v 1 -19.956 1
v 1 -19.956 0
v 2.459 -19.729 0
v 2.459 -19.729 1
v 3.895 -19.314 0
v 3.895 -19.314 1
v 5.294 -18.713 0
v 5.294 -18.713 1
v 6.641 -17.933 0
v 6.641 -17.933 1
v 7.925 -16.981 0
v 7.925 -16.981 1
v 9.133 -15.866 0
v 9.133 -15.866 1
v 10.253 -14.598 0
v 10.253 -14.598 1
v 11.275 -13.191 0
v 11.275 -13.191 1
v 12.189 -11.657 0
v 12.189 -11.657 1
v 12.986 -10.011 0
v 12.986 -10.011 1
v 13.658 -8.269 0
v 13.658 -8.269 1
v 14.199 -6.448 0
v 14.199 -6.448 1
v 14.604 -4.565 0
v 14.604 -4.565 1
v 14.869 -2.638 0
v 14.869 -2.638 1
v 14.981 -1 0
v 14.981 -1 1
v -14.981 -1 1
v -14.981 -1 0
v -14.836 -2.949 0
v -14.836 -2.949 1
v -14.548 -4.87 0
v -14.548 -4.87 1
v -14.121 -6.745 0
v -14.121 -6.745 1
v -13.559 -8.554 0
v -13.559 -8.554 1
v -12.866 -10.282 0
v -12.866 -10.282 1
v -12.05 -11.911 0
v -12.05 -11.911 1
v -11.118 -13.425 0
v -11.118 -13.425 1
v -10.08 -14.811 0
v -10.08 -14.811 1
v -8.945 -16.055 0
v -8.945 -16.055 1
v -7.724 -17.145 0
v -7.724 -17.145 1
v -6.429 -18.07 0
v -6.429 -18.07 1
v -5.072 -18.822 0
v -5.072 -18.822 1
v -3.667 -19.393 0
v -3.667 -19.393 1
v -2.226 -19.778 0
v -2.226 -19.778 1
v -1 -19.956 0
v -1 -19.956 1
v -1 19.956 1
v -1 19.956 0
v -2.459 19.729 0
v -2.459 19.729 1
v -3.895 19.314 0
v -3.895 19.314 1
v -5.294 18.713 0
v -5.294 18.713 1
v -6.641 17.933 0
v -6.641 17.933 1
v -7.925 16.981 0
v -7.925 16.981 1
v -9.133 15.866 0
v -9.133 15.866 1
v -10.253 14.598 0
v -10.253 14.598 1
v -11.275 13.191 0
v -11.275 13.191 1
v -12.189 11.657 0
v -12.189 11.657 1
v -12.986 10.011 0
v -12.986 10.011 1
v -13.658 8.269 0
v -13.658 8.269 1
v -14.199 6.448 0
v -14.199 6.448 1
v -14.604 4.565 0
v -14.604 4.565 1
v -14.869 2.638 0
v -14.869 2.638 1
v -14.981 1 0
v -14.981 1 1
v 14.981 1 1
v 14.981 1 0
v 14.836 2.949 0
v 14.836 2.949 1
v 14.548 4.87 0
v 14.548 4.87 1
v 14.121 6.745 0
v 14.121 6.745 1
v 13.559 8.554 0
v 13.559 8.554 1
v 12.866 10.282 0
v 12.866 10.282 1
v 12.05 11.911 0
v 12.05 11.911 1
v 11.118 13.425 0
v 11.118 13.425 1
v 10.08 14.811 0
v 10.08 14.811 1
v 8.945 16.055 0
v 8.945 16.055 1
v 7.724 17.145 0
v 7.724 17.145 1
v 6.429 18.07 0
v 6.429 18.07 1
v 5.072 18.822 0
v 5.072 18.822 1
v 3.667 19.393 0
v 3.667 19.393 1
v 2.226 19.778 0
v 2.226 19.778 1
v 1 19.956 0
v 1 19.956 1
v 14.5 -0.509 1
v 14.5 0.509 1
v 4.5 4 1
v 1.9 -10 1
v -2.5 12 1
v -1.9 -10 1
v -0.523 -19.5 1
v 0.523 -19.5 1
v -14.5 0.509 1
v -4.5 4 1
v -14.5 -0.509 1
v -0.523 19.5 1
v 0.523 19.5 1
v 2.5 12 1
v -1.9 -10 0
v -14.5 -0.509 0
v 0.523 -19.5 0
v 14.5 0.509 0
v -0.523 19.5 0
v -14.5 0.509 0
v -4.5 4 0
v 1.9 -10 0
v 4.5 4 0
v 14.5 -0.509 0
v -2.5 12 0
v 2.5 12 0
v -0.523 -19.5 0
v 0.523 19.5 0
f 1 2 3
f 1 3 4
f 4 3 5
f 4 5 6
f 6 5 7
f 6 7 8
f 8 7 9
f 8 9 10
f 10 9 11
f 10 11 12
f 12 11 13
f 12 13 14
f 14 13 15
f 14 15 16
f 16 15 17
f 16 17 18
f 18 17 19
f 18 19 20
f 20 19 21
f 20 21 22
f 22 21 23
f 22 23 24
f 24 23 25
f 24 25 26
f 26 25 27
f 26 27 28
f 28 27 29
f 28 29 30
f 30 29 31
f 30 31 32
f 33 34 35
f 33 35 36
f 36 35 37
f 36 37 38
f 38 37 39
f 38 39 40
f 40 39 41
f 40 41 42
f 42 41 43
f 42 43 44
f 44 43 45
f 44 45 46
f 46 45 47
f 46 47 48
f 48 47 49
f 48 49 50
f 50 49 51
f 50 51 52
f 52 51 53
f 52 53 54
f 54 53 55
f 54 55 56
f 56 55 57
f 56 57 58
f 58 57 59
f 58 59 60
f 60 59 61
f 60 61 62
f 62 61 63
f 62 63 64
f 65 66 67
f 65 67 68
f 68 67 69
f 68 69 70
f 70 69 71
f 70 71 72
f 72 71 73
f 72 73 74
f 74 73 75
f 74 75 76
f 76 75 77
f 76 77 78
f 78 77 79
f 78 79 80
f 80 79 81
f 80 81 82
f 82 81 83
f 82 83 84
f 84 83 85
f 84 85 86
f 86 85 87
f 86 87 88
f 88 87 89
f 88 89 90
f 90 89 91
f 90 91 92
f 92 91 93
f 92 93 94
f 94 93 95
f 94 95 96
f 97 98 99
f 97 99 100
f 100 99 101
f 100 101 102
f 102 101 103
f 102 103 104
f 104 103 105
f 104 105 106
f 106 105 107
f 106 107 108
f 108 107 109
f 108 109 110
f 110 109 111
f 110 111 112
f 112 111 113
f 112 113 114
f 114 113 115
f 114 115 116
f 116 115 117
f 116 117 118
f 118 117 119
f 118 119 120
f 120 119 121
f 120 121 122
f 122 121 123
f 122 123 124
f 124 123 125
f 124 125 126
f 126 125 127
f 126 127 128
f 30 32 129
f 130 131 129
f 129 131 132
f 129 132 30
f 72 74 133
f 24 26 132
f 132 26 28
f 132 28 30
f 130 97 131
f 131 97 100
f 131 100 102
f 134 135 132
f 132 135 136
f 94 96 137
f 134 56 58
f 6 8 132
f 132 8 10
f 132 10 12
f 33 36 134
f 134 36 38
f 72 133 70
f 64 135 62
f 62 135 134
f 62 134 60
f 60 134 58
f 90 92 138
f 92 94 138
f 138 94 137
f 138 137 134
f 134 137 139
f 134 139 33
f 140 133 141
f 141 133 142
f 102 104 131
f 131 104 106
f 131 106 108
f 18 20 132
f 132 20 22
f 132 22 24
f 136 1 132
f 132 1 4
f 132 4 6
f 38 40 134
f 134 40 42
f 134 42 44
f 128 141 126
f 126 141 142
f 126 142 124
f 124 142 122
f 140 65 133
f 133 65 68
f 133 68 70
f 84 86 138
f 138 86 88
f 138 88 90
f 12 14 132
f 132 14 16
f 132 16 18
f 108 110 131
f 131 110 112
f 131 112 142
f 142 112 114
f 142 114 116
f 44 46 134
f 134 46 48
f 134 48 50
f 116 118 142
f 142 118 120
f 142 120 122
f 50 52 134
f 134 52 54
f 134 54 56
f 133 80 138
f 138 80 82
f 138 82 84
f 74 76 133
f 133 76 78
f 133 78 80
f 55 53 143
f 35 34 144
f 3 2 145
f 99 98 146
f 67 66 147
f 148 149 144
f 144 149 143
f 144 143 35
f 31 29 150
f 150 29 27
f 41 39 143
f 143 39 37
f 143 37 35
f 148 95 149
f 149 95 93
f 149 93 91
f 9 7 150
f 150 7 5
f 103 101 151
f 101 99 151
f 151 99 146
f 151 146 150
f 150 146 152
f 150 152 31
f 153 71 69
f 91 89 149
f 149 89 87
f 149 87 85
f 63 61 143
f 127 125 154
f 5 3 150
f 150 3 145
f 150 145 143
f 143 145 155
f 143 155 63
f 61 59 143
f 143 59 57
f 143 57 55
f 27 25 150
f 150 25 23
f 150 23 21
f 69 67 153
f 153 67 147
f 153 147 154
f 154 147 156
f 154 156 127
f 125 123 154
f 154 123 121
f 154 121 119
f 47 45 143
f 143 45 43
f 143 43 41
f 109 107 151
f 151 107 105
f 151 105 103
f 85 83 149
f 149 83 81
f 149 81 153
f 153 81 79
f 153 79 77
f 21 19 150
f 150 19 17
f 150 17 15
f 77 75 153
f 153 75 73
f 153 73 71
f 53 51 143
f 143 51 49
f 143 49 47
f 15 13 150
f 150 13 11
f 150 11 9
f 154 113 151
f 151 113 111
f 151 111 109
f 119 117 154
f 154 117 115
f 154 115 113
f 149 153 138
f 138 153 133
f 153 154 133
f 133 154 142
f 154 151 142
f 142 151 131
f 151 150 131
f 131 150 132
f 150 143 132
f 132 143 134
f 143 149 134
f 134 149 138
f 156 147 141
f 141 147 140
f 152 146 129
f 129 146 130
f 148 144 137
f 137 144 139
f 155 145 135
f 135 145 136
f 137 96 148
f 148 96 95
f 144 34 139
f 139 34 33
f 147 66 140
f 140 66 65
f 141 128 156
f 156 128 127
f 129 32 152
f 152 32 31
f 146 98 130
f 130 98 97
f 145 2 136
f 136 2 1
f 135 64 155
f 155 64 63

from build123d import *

# Parameters (mm, degrees)
SKETCH_1_RX         = 20
SKETCH_1_RY         = 15
EXTRUDE_1_DEPTH     = 1
CUT_EXTRUDE_1_DEPTH = 1
SKETCH_3_W          = 1
SKETCH_3_H          = 1
CUT_EXTRUDE_2_DEPTH = 1
CHAMFER_START       = -1
CHAMFER_1_DEPTH     = 3


with BuildPart() as part:
    # 스케치1 → 보스-돌출1 (new body)
    with BuildSketch(Plane.XY):
        with Locations(Location((0, 0), (0, 0, -90))):
            Ellipse(SKETCH_1_RX, SKETCH_1_RY)
    extrude(amount=EXTRUDE_1_DEPTH)

    # 스케치2 → 컷-돌출1 (cut)
    with BuildSketch(Plane.XY.offset(1)):
        Polygon((2.5, 12), (-2.5, 12), (-4.5, 4), (-1.9, -10), (1.9, -10), (4.5, 4), align=None)
    extrude(amount=-CUT_EXTRUDE_1_DEPTH, mode=Mode.SUBTRACT)

    # 스케치3 → 컷-돌출2 (cut)
    with BuildSketch(Plane.XY.offset(1)):
        with Locations((0, 20)):
            Rectangle(SKETCH_3_W, SKETCH_3_H)
        with Locations((15, 0)):
            Rectangle(SKETCH_3_W, SKETCH_3_H)
        with Locations((-15, 0)):
            Rectangle(SKETCH_3_W, SKETCH_3_H)
        with Locations((0, -20)):
            Rectangle(SKETCH_3_W, SKETCH_3_H)
    extrude(amount=-CUT_EXTRUDE_2_DEPTH, mode=Mode.SUBTRACT)

    # 모따기1: read off the stored shape, not the designer's step
    # 모따기1 outline → 모따기1 (cut)
    with BuildSketch(Plane.XY.offset(CHAMFER_START)):
        with BuildLine():
            Line((-14.5, 0.509476942), (-14.981237977, 1.0000077))
            add(Edge.make_bspline(
                [(-14.981237977, 1.0000077), (-14.990620528, 0.750121225), (-14.995311767, 0.5)],
                knots=[4.659948749, 4.659948749, 4.659948749, 4.687386375, 4.687386375, 4.687386375], degree=2, weights=[0.990289953, 0.995055274, 1]))
            Line((-14.995311767, 0.5), (-14.5, 0.5))
            Line((-14.5, 0.5), (-14.5, 0.509476942))
        make_face()
        with BuildLine():
            add(Edge.make_bspline(
                [(-0.5, 19.988885801), (-0.750180122, 19.977760502), (-0.999942528, 19.955511183)],
                knots=[3.174932163, 3.174932163, 3.174932163, 3.211472839, 3.211472839, 3.211472839], degree=2, weights=[1, 0.99341475, 0.987147697]))
            Line((-0.999942528, 19.955511183), (-0.522817559, 19.5))
            Line((-0.522817559, 19.5), (-0.5, 19.5))
            Line((-0.5, 19.5), (-0.5, 19.988885801))
        make_face()
        with BuildLine():
            Line((-14.5, -0.509476942), (-14.5, -0.5))
            Line((-14.5, -0.5), (-14.995311767, -0.5))
            add(Edge.make_bspline(
                [(-14.995311767, -0.5), (-14.990620528, -0.750121225), (-14.981237977, -1.0000077)],
                knots=[4.737391585, 4.737391585, 4.737391585, 4.764829212, 4.764829212, 4.764829212], degree=2, weights=[1, 0.995055274, 0.990289953]))
            Line((-14.981237977, -1.0000077), (-14.5, -0.509476942))
        make_face()
        with BuildLine():
            Line((0.5, 19.988885801), (0.5, 19.5))
            Line((0.5, 19.5), (0.522817559, 19.5))
            Line((0.522817559, 19.5), (0.999942528, 19.955511183))
            add(Edge.make_bspline(
                [(0.999942528, 19.955511183), (0.750180122, 19.977760502), (0.5, 19.988885801)],
                knots=[3.071712468, 3.071712468, 3.071712468, 3.108253144, 3.108253144, 3.108253144], degree=2, weights=[0.987147697, 0.99341475, 1]))
        make_face()
        with BuildLine():
            Line((-0.522817559, -19.5), (-0.999942528, -19.955511183))
            add(Edge.make_bspline(
                [(-0.999942528, -19.955511183), (-0.750180122, -19.977760502), (-0.5, -19.988885801)],
                knots=[6.213305122, 6.213305122, 6.213305122, 6.249845798, 6.249845798, 6.249845798], degree=2, weights=[0.987147697, 0.99341475, 1]))
            Line((-0.5, -19.988885801), (-0.5, -19.5))
            Line((-0.5, -19.5), (-0.522817559, -19.5))
        make_face()
        with BuildLine():
            add(Edge.make_bspline(
                [(14.995311767, 0.5), (14.990620528, 0.750121225), (14.981237977, 1.0000077)],
                knots=[1.595798932, 1.595798932, 1.595798932, 1.623236559, 1.623236559, 1.623236559], degree=2, weights=[1, 0.995055274, 0.990289953]))
            Line((14.981237977, 1.0000077), (14.5, 0.509476942))
            Line((14.5, 0.509476942), (14.5, 0.5))
            Line((14.5, 0.5), (14.995311767, 0.5))
        make_face()
        with BuildLine():
            Line((0.522817559, -19.5), (0.5, -19.5))
            Line((0.5, -19.5), (0.5, -19.988885801))
            add(Edge.make_bspline(
                [(0.5, -19.988885801), (0.750180122, -19.977760502), (0.999942528, -19.955511183)],
                knots=[0.033339509, 0.033339509, 0.033339509, 0.069880186, 0.069880186, 0.069880186], degree=2, weights=[1, 0.99341475, 0.987147697]))
            Line((0.999942528, -19.955511183), (0.522817559, -19.5))
        make_face()
        with BuildLine():
            Line((14.995311767, -0.5), (14.5, -0.5))
            Line((14.5, -0.5), (14.5, -0.509476942))
            Line((14.5, -0.509476942), (14.981237977, -1.0000077))
            add(Edge.make_bspline(
                [(14.981237977, -1.0000077), (14.990620528, -0.750121225), (14.995311767, -0.5)],
                knots=[1.518356095, 1.518356095, 1.518356095, 1.545793722, 1.545793722, 1.545793722], degree=2, weights=[0.990289953, 0.995055274, 1]))
        make_face()
    extrude(amount=CHAMFER_1_DEPTH, mode=Mode.SUBTRACT)


solid = part.part
